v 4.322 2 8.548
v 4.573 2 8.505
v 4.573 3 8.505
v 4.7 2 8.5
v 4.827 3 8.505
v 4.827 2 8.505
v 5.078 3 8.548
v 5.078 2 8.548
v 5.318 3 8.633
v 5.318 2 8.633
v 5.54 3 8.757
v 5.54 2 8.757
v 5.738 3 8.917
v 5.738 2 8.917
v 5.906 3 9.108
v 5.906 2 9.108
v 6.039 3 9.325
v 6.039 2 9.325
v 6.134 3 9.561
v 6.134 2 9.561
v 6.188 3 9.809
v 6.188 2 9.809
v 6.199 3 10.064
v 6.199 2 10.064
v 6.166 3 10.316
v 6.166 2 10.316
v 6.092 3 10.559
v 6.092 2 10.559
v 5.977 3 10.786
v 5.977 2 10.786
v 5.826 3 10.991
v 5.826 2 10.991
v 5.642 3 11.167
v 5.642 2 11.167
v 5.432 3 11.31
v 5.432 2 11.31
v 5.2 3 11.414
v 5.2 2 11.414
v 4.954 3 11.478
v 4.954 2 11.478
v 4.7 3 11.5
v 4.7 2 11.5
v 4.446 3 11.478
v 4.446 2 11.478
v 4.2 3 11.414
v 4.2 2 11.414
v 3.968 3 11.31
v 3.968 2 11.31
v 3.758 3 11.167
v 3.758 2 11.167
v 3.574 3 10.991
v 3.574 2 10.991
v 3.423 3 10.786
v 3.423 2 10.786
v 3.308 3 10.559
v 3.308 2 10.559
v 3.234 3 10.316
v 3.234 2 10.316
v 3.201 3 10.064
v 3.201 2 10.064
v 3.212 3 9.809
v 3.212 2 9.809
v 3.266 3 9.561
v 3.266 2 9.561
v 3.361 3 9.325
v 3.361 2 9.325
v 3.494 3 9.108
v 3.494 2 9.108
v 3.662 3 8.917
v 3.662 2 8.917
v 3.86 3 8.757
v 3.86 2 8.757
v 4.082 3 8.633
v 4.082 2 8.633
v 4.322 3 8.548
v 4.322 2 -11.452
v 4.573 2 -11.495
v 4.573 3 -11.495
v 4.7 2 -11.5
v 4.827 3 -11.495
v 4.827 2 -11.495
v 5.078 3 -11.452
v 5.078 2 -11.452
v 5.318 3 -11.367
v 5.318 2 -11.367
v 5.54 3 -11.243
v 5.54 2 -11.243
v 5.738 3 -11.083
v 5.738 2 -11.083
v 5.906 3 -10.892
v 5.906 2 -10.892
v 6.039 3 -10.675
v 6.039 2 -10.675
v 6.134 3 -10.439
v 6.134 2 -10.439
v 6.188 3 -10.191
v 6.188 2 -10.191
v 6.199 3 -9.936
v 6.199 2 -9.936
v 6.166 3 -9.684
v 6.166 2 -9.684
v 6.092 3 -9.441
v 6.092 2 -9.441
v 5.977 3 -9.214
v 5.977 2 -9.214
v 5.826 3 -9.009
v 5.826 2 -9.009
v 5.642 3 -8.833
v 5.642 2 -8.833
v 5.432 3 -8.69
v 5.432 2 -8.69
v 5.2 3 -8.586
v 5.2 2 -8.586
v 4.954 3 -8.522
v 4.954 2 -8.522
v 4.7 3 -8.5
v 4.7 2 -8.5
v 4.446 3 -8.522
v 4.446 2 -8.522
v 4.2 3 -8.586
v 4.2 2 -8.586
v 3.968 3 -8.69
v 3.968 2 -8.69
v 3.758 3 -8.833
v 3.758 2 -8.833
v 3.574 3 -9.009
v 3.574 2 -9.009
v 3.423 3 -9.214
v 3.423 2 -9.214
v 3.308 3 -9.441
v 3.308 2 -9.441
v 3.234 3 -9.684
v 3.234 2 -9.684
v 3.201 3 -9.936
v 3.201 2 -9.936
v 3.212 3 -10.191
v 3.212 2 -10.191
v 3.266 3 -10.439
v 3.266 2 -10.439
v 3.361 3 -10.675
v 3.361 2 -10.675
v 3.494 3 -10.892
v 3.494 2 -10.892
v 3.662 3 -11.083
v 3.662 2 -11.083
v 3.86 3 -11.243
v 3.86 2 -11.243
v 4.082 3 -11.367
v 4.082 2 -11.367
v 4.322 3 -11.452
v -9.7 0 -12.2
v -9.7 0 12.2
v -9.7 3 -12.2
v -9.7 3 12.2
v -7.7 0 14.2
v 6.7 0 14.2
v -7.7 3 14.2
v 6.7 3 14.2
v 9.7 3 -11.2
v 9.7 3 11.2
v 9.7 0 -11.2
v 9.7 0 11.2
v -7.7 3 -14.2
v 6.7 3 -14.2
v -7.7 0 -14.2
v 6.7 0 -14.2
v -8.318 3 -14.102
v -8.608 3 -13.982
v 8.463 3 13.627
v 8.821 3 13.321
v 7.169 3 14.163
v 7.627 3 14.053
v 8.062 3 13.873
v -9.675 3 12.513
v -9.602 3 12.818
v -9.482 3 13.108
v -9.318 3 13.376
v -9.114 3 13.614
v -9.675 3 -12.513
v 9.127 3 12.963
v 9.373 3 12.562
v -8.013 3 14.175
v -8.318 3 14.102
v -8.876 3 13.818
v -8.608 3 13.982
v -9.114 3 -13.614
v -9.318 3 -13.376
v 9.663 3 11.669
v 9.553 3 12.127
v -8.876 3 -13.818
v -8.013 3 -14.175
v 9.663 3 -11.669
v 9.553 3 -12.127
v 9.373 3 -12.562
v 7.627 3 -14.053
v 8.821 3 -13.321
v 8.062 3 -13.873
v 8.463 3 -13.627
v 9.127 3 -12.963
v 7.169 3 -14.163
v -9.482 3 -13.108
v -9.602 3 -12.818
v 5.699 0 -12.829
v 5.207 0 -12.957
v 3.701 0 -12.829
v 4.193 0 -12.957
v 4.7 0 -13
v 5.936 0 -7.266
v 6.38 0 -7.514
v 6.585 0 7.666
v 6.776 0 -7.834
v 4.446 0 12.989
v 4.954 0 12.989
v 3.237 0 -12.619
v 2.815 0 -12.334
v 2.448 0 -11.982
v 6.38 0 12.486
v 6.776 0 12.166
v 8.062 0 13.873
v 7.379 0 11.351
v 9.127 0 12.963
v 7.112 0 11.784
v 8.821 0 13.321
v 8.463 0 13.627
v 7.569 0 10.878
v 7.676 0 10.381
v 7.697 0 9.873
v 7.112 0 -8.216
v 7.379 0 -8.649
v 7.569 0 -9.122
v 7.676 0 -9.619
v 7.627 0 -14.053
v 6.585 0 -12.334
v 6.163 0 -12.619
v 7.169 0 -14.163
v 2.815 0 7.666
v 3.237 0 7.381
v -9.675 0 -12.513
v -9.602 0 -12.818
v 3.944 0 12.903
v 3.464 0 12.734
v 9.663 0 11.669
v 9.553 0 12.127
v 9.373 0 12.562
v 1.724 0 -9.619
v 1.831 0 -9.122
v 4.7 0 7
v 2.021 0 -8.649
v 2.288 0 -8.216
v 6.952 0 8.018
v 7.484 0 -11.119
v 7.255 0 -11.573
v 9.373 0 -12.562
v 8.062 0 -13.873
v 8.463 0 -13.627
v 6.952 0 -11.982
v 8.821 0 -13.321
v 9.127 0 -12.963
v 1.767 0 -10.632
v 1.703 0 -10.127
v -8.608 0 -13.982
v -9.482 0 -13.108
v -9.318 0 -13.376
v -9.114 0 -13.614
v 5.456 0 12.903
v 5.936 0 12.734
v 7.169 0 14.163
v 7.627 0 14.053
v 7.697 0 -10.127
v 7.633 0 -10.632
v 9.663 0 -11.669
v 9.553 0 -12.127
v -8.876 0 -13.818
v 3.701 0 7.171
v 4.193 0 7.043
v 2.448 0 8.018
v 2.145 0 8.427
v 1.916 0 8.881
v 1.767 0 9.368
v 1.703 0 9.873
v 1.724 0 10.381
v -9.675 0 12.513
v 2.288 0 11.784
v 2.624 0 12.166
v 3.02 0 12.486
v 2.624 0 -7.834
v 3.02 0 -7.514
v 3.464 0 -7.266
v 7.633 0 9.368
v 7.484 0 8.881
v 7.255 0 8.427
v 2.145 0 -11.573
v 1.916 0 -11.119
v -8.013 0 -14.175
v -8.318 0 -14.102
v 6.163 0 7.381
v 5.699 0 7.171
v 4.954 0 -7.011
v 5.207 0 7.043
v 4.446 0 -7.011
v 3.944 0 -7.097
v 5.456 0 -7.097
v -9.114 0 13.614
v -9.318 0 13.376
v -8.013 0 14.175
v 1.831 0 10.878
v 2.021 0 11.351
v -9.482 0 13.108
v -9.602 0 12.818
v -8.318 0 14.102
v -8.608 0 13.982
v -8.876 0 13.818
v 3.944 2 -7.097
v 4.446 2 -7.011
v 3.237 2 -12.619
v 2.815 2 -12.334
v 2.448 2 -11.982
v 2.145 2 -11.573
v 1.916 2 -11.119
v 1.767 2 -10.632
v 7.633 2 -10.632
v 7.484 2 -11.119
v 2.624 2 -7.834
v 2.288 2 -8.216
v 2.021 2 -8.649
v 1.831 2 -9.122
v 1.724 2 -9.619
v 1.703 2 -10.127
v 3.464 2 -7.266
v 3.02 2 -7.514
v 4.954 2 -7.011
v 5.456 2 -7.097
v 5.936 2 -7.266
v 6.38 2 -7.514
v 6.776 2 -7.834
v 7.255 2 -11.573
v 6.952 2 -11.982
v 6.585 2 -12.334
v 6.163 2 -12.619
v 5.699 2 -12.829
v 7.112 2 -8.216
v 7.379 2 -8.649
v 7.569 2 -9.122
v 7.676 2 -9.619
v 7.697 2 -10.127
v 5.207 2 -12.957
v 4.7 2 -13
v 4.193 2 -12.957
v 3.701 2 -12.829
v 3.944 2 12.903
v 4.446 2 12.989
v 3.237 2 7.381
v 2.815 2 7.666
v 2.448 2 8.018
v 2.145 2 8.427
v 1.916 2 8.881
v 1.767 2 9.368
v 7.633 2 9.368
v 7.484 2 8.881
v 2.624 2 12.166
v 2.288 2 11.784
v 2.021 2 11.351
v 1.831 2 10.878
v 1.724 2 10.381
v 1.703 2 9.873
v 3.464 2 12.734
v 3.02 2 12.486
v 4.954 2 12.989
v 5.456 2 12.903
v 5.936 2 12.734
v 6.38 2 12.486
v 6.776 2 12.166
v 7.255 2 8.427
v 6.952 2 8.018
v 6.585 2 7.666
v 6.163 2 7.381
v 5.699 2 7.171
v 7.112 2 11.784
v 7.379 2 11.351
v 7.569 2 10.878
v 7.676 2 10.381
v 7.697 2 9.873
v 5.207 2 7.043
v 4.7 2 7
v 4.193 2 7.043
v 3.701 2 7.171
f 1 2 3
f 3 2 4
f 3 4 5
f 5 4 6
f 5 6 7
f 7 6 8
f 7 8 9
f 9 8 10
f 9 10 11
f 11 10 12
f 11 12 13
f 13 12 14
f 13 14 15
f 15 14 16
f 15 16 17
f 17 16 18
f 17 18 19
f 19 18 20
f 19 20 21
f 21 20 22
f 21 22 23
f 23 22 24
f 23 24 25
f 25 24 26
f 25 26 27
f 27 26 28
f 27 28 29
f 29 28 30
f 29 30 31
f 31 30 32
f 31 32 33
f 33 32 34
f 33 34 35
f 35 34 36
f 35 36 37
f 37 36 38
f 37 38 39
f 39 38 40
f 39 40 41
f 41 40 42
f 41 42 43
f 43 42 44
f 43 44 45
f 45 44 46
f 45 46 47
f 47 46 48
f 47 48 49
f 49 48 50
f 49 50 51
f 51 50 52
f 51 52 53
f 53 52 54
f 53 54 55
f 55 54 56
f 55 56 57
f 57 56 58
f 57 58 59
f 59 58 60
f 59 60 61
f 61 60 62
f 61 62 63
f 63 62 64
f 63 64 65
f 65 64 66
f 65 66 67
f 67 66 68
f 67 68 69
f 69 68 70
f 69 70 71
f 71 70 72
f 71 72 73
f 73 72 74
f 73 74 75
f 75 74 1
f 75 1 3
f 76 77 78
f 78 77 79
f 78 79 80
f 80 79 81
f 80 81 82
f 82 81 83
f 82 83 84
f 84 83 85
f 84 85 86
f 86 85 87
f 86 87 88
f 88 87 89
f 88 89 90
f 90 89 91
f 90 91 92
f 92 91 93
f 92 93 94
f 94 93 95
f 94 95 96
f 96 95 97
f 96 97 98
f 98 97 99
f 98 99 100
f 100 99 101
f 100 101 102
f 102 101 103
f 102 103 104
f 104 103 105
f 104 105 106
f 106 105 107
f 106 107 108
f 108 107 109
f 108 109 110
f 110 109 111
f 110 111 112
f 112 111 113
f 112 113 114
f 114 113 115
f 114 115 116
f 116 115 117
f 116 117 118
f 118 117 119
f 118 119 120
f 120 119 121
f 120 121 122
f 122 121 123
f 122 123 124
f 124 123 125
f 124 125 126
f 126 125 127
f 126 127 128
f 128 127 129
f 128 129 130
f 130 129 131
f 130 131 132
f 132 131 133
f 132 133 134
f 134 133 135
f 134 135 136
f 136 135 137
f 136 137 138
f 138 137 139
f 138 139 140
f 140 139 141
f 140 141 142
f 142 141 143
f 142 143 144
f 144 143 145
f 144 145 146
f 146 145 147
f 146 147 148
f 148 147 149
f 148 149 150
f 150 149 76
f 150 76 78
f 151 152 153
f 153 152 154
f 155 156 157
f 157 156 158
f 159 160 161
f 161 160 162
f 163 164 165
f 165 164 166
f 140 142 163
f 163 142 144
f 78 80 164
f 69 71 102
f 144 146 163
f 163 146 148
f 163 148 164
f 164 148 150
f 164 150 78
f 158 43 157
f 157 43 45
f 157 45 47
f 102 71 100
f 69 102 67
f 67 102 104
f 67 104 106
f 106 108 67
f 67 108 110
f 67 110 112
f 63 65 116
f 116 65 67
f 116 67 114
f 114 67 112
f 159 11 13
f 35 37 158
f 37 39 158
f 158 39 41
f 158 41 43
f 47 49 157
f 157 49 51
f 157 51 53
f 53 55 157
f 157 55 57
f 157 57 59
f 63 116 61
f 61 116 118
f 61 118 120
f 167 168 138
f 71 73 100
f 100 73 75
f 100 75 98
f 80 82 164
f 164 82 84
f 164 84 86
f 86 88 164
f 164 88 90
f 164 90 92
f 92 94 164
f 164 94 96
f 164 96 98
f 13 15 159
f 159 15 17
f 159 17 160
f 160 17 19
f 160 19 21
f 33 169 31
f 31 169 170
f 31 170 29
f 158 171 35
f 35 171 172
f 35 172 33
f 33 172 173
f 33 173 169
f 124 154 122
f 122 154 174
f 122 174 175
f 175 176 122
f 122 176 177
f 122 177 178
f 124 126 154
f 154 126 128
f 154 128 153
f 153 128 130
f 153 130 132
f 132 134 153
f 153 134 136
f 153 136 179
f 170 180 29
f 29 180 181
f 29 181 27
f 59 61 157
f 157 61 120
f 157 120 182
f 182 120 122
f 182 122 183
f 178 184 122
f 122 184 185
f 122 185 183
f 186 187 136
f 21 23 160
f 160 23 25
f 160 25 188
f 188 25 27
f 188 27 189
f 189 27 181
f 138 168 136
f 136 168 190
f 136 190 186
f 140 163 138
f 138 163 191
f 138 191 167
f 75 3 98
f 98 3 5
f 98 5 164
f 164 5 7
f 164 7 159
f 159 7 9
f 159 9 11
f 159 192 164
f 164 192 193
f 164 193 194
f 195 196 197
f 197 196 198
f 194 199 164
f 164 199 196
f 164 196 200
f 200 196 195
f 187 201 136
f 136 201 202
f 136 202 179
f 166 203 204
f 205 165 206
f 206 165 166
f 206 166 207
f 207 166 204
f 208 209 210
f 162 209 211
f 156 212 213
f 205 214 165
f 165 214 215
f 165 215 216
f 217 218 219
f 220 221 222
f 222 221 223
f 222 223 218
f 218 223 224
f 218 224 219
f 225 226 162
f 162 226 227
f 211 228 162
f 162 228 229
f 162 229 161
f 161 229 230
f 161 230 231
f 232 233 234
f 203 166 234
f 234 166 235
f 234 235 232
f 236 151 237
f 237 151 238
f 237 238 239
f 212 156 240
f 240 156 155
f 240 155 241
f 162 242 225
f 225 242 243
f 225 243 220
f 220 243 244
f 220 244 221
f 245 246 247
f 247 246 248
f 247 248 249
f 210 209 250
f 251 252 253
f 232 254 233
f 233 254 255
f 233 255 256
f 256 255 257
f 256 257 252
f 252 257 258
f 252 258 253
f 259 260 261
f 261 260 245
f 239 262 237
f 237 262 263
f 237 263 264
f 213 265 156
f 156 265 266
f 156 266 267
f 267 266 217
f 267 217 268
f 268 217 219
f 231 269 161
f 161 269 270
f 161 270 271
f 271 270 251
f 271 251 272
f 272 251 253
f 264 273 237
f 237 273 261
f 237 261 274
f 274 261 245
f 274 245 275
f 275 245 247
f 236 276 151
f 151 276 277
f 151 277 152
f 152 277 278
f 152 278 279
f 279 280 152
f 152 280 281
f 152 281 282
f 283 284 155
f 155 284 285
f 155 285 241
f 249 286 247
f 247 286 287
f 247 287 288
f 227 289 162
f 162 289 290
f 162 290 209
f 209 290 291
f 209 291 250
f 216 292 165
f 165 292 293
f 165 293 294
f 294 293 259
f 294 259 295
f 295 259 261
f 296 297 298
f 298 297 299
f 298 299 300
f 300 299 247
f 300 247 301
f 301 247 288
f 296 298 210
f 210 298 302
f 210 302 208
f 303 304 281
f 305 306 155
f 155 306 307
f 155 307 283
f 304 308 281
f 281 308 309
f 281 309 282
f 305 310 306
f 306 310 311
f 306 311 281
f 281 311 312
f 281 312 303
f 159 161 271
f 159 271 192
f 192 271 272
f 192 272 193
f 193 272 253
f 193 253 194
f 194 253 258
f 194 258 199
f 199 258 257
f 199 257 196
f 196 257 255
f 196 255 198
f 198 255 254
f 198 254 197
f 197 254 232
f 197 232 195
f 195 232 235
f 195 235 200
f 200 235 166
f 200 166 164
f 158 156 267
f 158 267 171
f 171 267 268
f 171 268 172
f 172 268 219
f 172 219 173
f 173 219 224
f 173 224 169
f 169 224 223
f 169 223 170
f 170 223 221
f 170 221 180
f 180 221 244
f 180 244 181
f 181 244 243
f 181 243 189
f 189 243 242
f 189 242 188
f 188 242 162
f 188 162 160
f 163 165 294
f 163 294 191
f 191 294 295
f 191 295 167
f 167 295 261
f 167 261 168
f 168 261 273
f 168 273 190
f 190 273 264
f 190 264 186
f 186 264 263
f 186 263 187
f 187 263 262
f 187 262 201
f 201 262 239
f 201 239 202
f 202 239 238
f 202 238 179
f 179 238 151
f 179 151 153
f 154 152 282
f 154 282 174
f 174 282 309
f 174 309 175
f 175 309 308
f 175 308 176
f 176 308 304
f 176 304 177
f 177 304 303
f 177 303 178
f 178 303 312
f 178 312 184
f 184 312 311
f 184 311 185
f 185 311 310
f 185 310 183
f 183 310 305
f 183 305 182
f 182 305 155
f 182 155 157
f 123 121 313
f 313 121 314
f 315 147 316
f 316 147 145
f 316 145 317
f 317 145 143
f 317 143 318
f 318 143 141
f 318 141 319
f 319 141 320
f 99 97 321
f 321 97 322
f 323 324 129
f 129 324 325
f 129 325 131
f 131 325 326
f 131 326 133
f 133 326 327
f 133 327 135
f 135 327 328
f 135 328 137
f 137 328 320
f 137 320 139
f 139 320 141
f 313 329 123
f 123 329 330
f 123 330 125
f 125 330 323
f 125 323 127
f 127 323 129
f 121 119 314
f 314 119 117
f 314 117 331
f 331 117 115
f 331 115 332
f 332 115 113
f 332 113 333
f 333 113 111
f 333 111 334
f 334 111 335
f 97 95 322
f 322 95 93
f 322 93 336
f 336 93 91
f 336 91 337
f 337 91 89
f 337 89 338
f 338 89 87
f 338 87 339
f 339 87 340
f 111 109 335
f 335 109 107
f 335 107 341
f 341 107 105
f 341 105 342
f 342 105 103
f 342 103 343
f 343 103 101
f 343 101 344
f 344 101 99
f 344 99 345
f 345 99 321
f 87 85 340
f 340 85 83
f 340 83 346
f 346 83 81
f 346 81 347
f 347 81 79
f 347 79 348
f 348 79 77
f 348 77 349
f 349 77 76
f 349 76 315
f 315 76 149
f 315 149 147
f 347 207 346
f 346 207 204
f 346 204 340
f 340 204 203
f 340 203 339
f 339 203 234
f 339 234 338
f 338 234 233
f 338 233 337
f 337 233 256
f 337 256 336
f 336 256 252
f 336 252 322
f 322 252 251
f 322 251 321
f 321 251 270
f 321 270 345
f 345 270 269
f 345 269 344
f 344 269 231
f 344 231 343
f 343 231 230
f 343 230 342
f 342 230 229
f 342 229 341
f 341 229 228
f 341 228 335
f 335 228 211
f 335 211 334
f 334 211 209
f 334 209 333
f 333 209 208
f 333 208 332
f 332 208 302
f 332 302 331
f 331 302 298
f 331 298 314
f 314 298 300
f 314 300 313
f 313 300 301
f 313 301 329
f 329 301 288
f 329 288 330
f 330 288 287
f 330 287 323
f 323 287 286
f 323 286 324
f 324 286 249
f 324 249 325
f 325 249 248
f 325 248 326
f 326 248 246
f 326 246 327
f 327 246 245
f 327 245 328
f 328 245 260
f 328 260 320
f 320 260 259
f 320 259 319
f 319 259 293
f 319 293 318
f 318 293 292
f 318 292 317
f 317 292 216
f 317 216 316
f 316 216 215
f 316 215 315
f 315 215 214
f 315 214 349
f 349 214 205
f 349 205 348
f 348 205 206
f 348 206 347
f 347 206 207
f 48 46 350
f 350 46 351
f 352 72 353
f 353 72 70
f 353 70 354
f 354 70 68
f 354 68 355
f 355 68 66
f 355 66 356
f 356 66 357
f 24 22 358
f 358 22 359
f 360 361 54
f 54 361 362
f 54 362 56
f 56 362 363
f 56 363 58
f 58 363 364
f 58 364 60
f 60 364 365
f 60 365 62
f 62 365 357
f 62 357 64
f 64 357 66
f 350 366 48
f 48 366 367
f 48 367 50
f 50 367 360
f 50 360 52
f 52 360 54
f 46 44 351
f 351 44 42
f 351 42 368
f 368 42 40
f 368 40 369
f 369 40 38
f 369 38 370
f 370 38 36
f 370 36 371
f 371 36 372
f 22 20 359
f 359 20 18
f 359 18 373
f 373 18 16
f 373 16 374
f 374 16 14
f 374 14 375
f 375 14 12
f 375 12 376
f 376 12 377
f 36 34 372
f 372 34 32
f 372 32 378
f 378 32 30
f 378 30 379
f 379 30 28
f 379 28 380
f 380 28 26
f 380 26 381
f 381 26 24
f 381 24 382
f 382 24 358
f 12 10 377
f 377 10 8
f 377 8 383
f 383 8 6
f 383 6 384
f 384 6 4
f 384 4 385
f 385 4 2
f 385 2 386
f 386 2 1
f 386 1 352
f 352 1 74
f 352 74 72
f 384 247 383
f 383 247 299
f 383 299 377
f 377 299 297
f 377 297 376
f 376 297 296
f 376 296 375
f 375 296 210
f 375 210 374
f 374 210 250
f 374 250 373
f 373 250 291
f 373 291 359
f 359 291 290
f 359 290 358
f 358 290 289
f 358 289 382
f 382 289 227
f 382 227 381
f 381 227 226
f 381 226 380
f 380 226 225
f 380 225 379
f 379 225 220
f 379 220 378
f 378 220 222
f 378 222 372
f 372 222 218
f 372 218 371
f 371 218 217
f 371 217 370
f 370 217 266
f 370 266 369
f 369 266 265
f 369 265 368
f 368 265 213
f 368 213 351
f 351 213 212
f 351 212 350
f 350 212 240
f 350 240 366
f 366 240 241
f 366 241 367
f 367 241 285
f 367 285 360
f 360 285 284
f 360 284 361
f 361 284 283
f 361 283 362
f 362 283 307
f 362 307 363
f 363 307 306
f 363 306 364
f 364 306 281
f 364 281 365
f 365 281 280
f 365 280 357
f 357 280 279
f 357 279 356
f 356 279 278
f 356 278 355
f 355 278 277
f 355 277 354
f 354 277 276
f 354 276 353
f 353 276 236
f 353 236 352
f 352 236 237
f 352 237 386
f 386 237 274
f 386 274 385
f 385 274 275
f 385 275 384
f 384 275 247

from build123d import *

# Parameters (mm, degrees)
SKETCH1_W           = 19.4
SKETCH1_H           = 28.4
BOSS_EXTRUDE1_DEPTH = 3
FILLET1_R           = 3
FILLET2_R           = 2
SKETCH2_R           = 1.5
CUT_EXTRUDE1_DEPTH  = 4
SKETCH4_R           = 3
CUT_EXTRUDE2_DEPTH  = 2


with BuildPart() as part:
    # Sketch1 → Boss-Extrude1 (new body)
    with BuildSketch(Plane(origin=(0, 0, 0), x_dir=(1, 0, 0), z_dir=(0, 1, 0))):
        Rectangle(SKETCH1_W, SKETCH1_H)
    extrude(amount=BOSS_EXTRUDE1_DEPTH)

    # Fillet1
    fillet1_edges = [part.edges().sort_by_distance(p)[0] for p in [
        (9.7, 1.5, -14.2),
        (9.7, 1.5, 14.2),
    ]]
    fillet(fillet1_edges, radius=FILLET1_R)

    # Fillet2
    fillet2_edges = [part.edges().sort_by_distance(p)[0] for p in [
        (-9.7, 1.5, -14.2),
        (-9.7, 1.5, 14.2),
    ]]
    fillet(fillet2_edges, radius=FILLET2_R)

    # Sketch2 → Cut-Extrude1 (cut, through all)
    with BuildSketch(Plane(origin=(0, 3, 0), x_dir=(1, 0, 0), z_dir=(0, 1, 0))):
        with Locations((4.7, 10)):
            Circle(SKETCH2_R)
        with Locations((4.7, -10)):
            Circle(SKETCH2_R)
    extrude(amount=-CUT_EXTRUDE1_DEPTH, mode=Mode.SUBTRACT)

    # Sketch4 → Cut-Extrude2 (cut)
    with BuildSketch(Plane.XZ):
        with Locations((4.7, 10)):
            Circle(SKETCH4_R)
        with Locations((4.7, -10)):
            Circle(SKETCH4_R)
    extrude(amount=-CUT_EXTRUDE2_DEPTH, mode=Mode.SUBTRACT)


solid = part.part
